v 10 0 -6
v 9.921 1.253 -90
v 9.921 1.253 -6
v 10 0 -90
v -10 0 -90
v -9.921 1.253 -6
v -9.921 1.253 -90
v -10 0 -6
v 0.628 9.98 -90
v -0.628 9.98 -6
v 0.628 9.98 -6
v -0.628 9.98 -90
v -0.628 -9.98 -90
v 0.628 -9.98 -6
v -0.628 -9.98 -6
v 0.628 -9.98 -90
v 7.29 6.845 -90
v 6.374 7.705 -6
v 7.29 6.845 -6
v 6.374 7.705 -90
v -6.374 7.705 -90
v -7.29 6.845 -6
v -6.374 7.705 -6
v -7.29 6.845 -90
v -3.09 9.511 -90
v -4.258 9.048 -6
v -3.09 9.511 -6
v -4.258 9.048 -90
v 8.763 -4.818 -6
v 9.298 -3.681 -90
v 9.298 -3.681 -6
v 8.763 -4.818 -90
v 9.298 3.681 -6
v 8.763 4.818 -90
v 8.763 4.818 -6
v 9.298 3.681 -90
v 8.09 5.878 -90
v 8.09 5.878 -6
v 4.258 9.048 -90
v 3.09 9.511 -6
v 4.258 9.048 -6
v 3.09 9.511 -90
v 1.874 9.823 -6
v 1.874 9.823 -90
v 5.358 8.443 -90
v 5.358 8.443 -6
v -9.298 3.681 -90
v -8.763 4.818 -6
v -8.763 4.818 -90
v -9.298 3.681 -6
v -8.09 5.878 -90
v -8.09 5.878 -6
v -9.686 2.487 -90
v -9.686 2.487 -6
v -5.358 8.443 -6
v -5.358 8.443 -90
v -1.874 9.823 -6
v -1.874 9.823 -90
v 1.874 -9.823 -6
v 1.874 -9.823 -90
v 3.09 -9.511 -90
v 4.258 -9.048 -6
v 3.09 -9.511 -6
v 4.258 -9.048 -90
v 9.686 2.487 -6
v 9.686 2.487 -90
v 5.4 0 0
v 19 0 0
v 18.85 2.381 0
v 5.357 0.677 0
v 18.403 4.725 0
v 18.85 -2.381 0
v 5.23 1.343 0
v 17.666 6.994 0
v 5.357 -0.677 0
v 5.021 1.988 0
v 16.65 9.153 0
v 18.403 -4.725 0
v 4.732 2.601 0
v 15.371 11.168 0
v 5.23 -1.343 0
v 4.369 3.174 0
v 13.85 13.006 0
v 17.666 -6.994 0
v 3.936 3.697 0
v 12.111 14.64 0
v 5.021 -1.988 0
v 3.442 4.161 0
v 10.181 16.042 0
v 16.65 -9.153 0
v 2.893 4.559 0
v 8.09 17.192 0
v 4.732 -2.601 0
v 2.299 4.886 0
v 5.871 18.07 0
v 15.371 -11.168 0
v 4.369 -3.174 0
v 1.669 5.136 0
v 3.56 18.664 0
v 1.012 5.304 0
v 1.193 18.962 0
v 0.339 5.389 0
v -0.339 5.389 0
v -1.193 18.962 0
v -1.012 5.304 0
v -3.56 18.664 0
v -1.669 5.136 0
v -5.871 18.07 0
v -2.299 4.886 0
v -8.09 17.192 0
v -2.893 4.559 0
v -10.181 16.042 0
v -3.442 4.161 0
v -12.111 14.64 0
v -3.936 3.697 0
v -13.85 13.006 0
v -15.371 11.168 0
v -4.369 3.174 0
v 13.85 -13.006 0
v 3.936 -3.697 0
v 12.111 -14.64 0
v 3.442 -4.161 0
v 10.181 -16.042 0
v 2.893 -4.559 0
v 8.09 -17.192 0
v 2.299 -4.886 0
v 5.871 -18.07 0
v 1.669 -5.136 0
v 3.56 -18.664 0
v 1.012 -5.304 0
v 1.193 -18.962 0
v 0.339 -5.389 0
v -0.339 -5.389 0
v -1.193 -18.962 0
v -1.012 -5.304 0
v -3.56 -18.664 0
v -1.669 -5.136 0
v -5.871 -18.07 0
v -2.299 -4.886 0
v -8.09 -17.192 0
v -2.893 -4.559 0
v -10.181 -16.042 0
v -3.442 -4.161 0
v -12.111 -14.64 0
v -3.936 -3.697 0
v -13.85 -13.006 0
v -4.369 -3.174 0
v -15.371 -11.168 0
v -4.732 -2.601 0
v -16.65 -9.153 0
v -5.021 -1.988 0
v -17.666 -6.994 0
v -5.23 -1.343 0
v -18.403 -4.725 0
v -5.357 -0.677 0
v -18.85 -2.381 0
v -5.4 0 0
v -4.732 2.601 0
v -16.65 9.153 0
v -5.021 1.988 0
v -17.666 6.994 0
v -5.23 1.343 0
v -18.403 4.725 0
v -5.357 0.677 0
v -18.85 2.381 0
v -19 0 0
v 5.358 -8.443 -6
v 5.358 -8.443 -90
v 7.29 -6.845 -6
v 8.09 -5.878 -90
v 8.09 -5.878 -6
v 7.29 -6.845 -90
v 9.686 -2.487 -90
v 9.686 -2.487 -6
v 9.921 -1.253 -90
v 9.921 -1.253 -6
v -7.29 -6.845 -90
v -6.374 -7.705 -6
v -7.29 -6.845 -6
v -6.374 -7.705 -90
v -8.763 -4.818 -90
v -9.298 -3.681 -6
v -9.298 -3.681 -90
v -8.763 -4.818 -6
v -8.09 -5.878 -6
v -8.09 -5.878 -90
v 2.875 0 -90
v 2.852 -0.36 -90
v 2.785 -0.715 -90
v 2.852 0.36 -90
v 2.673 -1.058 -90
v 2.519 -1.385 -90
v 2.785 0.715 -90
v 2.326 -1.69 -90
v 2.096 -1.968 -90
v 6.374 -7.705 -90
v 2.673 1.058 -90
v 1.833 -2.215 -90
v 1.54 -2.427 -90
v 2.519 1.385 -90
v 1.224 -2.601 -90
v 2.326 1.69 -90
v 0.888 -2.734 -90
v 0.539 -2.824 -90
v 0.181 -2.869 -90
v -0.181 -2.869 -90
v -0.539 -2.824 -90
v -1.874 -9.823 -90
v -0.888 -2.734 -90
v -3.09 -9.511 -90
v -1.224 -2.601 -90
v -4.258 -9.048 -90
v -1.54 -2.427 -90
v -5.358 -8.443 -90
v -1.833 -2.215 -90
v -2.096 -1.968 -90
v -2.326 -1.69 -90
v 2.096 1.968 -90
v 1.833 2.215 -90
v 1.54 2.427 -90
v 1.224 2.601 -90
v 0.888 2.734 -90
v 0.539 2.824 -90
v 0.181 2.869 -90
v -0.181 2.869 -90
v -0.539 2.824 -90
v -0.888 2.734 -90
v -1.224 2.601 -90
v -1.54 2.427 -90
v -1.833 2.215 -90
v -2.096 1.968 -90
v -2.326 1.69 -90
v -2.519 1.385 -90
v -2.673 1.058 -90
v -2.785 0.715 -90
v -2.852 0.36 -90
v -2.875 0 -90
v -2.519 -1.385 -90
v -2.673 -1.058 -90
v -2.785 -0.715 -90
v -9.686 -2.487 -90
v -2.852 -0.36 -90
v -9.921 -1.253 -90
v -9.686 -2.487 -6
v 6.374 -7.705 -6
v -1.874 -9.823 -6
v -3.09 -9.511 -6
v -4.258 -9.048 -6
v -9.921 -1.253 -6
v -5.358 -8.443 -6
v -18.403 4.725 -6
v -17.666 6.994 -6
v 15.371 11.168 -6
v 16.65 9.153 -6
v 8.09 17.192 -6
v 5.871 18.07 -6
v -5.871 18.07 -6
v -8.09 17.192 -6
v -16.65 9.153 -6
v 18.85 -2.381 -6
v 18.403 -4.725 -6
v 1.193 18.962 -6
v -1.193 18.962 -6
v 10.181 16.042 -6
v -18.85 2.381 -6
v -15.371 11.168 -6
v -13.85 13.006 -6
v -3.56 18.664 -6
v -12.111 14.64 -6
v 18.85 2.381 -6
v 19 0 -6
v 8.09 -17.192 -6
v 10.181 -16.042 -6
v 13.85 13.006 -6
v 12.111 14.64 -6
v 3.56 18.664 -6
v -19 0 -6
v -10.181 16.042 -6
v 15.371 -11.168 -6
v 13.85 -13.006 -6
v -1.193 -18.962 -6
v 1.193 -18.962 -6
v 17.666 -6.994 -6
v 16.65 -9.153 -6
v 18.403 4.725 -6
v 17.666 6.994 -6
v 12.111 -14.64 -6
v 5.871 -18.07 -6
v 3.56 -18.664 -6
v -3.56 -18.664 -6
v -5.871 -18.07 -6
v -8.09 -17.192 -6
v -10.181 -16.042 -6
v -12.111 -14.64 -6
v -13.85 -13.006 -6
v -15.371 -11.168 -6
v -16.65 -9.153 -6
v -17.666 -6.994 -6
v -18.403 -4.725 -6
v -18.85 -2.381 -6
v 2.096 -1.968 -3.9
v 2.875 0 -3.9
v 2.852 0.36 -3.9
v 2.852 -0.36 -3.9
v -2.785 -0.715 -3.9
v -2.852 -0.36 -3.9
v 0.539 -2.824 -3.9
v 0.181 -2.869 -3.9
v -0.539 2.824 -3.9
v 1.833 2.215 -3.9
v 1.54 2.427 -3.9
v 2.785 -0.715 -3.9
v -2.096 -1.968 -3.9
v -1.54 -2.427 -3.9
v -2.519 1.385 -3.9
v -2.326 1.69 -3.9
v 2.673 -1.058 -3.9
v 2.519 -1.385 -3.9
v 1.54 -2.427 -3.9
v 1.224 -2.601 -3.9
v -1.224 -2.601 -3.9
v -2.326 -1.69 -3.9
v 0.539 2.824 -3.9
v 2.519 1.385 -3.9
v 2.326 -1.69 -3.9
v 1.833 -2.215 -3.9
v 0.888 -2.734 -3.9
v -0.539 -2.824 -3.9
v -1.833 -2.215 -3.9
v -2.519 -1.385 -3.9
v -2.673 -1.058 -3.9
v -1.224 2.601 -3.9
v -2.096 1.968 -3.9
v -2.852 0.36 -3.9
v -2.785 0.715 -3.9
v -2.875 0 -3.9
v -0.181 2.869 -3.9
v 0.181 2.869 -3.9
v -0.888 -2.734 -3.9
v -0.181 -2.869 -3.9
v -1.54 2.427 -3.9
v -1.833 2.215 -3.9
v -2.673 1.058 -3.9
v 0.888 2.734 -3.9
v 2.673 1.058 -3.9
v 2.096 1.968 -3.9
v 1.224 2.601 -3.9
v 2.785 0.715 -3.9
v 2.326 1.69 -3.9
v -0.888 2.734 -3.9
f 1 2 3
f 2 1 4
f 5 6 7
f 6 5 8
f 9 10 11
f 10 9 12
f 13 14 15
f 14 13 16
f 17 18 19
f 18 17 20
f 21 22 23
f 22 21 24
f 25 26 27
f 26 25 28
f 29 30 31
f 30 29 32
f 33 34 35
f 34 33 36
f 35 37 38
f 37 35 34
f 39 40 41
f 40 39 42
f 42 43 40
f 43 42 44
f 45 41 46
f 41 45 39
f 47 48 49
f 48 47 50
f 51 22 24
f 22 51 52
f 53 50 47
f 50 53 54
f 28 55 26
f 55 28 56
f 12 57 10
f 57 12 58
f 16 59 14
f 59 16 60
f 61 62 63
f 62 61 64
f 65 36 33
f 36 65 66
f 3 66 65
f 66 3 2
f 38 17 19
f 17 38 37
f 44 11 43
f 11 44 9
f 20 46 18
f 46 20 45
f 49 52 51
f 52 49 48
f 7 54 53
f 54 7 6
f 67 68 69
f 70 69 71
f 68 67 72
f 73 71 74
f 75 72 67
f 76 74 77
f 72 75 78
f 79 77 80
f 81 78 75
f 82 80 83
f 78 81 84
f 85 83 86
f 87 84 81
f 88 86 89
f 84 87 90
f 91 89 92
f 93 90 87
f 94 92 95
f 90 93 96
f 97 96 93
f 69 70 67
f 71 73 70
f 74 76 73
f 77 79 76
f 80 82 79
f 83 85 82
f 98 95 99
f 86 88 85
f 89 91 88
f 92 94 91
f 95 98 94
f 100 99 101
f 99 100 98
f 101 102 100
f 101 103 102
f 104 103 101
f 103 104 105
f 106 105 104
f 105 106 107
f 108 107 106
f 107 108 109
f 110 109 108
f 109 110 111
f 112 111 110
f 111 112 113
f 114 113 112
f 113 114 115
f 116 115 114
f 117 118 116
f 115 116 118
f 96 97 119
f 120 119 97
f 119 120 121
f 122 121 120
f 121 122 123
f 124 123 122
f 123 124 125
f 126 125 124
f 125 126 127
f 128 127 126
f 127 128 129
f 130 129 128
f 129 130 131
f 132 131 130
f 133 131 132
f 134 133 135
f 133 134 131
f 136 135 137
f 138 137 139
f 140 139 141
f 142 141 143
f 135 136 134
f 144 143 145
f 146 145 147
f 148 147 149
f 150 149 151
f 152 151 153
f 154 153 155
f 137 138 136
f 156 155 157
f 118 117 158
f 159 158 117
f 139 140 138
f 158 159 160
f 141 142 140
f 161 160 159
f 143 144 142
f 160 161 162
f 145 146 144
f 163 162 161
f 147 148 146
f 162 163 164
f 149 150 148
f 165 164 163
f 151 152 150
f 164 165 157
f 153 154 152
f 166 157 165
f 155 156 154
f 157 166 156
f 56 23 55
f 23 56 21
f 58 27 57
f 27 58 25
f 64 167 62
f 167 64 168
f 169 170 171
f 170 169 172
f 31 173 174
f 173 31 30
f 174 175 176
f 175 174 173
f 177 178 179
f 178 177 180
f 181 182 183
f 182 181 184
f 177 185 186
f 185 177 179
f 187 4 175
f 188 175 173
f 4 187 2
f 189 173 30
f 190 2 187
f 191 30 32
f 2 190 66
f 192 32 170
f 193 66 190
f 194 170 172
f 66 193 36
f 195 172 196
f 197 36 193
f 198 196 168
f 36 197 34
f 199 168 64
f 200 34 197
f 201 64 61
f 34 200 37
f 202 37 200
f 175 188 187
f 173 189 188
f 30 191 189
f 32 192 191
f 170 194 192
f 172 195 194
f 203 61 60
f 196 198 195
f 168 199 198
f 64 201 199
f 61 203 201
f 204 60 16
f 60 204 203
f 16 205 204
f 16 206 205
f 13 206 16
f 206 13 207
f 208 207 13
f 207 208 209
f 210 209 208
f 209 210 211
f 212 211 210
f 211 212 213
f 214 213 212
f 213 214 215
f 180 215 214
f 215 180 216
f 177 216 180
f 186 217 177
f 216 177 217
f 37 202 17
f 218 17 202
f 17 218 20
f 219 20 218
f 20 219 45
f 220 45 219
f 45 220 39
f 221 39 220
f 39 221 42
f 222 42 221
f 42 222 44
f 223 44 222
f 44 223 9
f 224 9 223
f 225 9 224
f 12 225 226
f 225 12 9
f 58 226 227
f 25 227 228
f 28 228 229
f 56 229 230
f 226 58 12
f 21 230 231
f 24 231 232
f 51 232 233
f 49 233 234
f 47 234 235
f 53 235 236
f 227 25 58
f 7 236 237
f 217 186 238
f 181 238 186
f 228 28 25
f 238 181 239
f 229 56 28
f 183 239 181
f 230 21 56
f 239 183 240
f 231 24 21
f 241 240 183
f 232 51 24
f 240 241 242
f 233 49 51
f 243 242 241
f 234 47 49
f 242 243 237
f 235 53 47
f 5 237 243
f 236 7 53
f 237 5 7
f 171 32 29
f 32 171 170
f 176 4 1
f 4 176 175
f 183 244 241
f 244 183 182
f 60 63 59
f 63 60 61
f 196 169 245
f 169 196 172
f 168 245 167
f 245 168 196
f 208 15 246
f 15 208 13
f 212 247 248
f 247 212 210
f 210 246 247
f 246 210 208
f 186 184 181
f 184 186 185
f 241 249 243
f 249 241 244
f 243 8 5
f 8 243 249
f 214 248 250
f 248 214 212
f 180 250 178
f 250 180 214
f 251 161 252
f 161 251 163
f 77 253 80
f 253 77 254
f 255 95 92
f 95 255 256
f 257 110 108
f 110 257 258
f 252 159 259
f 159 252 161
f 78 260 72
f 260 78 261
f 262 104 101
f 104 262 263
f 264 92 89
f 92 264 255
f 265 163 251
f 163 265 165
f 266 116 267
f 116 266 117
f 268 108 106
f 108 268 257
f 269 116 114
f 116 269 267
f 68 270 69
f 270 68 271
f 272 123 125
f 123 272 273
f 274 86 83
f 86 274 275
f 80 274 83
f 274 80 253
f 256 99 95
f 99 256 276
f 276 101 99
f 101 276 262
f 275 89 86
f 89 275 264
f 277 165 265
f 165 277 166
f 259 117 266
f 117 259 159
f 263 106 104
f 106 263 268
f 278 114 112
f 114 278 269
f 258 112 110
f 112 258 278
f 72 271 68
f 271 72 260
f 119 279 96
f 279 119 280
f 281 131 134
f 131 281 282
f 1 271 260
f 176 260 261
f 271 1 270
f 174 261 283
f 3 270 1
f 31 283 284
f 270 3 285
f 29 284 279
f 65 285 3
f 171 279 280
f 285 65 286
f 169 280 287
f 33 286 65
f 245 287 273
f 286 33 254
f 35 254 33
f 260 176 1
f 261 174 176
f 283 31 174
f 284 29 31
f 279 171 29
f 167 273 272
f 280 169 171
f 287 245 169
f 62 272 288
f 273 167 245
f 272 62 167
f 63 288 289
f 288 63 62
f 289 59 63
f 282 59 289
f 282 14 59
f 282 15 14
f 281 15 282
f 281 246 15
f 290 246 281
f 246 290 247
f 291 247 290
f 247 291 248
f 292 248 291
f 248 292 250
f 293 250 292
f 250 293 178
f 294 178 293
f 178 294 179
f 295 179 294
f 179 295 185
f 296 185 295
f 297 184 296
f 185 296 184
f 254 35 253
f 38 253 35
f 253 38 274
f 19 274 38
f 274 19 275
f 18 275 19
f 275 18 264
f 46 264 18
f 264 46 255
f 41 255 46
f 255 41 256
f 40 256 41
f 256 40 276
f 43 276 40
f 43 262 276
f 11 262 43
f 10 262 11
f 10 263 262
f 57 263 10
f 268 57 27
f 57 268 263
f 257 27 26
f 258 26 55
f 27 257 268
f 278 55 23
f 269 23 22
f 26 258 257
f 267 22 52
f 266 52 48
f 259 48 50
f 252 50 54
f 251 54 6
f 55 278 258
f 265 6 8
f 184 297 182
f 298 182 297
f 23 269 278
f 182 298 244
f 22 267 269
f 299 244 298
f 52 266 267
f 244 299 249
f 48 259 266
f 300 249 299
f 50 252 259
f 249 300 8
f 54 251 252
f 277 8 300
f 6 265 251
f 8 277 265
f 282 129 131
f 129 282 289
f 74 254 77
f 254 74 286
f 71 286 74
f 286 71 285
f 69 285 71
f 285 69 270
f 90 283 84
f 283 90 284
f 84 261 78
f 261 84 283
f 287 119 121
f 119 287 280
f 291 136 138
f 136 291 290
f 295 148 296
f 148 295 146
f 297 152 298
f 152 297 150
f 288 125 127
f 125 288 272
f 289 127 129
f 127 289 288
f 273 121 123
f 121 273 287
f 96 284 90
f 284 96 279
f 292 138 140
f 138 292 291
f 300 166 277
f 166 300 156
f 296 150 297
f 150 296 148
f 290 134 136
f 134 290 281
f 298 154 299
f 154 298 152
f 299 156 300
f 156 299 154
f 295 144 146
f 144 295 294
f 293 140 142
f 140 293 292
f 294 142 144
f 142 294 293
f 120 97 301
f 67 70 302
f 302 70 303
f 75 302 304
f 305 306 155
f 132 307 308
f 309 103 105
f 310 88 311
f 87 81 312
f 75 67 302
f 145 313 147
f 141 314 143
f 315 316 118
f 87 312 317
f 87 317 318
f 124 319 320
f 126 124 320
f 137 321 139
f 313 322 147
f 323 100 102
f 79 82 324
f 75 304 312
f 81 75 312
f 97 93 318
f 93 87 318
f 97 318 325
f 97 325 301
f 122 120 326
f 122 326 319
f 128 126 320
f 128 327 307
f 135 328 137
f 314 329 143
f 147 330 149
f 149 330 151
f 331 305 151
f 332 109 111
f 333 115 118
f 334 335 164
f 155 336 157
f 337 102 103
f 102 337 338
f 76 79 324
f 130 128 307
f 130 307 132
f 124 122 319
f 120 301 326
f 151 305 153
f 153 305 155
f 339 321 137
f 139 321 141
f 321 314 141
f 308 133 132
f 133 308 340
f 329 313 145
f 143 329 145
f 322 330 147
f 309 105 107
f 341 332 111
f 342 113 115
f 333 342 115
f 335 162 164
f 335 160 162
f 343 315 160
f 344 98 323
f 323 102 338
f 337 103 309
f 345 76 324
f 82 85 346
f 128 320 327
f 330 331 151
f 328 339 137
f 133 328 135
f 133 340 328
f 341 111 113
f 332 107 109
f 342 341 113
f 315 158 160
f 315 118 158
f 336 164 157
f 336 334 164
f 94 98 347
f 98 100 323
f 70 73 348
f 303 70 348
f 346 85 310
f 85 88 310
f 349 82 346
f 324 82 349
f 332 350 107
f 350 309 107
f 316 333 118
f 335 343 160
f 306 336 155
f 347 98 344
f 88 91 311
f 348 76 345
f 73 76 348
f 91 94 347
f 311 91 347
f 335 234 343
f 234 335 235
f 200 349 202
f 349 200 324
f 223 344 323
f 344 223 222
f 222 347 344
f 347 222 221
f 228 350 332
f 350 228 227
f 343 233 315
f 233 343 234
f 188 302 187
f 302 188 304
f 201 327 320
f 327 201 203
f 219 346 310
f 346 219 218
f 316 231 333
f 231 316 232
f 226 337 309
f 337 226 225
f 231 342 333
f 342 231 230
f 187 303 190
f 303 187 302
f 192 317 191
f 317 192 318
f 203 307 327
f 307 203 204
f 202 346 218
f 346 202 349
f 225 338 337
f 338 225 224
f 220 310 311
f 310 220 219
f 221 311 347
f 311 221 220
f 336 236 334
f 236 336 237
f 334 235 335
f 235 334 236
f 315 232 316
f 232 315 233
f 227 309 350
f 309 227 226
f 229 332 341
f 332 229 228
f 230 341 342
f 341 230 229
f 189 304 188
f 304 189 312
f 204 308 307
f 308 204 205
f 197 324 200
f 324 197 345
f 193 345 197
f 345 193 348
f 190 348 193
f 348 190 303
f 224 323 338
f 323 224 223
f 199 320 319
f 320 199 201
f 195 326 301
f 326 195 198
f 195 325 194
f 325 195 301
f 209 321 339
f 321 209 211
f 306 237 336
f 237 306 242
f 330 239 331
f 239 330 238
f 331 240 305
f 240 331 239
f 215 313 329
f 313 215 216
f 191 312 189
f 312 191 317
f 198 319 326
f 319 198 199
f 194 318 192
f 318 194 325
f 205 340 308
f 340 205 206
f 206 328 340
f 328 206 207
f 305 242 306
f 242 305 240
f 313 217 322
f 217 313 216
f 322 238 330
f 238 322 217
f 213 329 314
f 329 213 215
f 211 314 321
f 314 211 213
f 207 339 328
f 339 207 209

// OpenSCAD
$fn = 50;


difference() {
	union() {
		translate(v = [0, 0, -90.0000000000]) {
			cylinder(h = 90, r = 10.0000000000);
		}
		translate(v = [0, 0, -6.0000000000]) {
			cylinder(h = 6, r = 19.0000000000);
		}
	}
	union() {
		translate(v = [0, 0, 0]) {
			rotate(a = [0, 0, 0]) {
				difference() {
					union() {
						#translate(v = [0, 0, -90.0000000000]) {
							cylinder(h = 90, r = 2.6000000000);
						}
						#translate(v = [0, 0, -3.9000000000]) {
							cylinder(h = 3.9000000000, r = 10.0000000000, r1 = 2.8750000000, r2 = 5.4000000000);
						}
						#translate(v = [0, 0, -90.0000000000]) {
							cylinder(h = 90, r = 2.8750000000);
						}
						#translate(v = [0, 0, -90.0000000000]) {
							cylinder(h = 90, r = 2.6000000000);
						}
					}
					union();
				}
			}
		}
	}
}
